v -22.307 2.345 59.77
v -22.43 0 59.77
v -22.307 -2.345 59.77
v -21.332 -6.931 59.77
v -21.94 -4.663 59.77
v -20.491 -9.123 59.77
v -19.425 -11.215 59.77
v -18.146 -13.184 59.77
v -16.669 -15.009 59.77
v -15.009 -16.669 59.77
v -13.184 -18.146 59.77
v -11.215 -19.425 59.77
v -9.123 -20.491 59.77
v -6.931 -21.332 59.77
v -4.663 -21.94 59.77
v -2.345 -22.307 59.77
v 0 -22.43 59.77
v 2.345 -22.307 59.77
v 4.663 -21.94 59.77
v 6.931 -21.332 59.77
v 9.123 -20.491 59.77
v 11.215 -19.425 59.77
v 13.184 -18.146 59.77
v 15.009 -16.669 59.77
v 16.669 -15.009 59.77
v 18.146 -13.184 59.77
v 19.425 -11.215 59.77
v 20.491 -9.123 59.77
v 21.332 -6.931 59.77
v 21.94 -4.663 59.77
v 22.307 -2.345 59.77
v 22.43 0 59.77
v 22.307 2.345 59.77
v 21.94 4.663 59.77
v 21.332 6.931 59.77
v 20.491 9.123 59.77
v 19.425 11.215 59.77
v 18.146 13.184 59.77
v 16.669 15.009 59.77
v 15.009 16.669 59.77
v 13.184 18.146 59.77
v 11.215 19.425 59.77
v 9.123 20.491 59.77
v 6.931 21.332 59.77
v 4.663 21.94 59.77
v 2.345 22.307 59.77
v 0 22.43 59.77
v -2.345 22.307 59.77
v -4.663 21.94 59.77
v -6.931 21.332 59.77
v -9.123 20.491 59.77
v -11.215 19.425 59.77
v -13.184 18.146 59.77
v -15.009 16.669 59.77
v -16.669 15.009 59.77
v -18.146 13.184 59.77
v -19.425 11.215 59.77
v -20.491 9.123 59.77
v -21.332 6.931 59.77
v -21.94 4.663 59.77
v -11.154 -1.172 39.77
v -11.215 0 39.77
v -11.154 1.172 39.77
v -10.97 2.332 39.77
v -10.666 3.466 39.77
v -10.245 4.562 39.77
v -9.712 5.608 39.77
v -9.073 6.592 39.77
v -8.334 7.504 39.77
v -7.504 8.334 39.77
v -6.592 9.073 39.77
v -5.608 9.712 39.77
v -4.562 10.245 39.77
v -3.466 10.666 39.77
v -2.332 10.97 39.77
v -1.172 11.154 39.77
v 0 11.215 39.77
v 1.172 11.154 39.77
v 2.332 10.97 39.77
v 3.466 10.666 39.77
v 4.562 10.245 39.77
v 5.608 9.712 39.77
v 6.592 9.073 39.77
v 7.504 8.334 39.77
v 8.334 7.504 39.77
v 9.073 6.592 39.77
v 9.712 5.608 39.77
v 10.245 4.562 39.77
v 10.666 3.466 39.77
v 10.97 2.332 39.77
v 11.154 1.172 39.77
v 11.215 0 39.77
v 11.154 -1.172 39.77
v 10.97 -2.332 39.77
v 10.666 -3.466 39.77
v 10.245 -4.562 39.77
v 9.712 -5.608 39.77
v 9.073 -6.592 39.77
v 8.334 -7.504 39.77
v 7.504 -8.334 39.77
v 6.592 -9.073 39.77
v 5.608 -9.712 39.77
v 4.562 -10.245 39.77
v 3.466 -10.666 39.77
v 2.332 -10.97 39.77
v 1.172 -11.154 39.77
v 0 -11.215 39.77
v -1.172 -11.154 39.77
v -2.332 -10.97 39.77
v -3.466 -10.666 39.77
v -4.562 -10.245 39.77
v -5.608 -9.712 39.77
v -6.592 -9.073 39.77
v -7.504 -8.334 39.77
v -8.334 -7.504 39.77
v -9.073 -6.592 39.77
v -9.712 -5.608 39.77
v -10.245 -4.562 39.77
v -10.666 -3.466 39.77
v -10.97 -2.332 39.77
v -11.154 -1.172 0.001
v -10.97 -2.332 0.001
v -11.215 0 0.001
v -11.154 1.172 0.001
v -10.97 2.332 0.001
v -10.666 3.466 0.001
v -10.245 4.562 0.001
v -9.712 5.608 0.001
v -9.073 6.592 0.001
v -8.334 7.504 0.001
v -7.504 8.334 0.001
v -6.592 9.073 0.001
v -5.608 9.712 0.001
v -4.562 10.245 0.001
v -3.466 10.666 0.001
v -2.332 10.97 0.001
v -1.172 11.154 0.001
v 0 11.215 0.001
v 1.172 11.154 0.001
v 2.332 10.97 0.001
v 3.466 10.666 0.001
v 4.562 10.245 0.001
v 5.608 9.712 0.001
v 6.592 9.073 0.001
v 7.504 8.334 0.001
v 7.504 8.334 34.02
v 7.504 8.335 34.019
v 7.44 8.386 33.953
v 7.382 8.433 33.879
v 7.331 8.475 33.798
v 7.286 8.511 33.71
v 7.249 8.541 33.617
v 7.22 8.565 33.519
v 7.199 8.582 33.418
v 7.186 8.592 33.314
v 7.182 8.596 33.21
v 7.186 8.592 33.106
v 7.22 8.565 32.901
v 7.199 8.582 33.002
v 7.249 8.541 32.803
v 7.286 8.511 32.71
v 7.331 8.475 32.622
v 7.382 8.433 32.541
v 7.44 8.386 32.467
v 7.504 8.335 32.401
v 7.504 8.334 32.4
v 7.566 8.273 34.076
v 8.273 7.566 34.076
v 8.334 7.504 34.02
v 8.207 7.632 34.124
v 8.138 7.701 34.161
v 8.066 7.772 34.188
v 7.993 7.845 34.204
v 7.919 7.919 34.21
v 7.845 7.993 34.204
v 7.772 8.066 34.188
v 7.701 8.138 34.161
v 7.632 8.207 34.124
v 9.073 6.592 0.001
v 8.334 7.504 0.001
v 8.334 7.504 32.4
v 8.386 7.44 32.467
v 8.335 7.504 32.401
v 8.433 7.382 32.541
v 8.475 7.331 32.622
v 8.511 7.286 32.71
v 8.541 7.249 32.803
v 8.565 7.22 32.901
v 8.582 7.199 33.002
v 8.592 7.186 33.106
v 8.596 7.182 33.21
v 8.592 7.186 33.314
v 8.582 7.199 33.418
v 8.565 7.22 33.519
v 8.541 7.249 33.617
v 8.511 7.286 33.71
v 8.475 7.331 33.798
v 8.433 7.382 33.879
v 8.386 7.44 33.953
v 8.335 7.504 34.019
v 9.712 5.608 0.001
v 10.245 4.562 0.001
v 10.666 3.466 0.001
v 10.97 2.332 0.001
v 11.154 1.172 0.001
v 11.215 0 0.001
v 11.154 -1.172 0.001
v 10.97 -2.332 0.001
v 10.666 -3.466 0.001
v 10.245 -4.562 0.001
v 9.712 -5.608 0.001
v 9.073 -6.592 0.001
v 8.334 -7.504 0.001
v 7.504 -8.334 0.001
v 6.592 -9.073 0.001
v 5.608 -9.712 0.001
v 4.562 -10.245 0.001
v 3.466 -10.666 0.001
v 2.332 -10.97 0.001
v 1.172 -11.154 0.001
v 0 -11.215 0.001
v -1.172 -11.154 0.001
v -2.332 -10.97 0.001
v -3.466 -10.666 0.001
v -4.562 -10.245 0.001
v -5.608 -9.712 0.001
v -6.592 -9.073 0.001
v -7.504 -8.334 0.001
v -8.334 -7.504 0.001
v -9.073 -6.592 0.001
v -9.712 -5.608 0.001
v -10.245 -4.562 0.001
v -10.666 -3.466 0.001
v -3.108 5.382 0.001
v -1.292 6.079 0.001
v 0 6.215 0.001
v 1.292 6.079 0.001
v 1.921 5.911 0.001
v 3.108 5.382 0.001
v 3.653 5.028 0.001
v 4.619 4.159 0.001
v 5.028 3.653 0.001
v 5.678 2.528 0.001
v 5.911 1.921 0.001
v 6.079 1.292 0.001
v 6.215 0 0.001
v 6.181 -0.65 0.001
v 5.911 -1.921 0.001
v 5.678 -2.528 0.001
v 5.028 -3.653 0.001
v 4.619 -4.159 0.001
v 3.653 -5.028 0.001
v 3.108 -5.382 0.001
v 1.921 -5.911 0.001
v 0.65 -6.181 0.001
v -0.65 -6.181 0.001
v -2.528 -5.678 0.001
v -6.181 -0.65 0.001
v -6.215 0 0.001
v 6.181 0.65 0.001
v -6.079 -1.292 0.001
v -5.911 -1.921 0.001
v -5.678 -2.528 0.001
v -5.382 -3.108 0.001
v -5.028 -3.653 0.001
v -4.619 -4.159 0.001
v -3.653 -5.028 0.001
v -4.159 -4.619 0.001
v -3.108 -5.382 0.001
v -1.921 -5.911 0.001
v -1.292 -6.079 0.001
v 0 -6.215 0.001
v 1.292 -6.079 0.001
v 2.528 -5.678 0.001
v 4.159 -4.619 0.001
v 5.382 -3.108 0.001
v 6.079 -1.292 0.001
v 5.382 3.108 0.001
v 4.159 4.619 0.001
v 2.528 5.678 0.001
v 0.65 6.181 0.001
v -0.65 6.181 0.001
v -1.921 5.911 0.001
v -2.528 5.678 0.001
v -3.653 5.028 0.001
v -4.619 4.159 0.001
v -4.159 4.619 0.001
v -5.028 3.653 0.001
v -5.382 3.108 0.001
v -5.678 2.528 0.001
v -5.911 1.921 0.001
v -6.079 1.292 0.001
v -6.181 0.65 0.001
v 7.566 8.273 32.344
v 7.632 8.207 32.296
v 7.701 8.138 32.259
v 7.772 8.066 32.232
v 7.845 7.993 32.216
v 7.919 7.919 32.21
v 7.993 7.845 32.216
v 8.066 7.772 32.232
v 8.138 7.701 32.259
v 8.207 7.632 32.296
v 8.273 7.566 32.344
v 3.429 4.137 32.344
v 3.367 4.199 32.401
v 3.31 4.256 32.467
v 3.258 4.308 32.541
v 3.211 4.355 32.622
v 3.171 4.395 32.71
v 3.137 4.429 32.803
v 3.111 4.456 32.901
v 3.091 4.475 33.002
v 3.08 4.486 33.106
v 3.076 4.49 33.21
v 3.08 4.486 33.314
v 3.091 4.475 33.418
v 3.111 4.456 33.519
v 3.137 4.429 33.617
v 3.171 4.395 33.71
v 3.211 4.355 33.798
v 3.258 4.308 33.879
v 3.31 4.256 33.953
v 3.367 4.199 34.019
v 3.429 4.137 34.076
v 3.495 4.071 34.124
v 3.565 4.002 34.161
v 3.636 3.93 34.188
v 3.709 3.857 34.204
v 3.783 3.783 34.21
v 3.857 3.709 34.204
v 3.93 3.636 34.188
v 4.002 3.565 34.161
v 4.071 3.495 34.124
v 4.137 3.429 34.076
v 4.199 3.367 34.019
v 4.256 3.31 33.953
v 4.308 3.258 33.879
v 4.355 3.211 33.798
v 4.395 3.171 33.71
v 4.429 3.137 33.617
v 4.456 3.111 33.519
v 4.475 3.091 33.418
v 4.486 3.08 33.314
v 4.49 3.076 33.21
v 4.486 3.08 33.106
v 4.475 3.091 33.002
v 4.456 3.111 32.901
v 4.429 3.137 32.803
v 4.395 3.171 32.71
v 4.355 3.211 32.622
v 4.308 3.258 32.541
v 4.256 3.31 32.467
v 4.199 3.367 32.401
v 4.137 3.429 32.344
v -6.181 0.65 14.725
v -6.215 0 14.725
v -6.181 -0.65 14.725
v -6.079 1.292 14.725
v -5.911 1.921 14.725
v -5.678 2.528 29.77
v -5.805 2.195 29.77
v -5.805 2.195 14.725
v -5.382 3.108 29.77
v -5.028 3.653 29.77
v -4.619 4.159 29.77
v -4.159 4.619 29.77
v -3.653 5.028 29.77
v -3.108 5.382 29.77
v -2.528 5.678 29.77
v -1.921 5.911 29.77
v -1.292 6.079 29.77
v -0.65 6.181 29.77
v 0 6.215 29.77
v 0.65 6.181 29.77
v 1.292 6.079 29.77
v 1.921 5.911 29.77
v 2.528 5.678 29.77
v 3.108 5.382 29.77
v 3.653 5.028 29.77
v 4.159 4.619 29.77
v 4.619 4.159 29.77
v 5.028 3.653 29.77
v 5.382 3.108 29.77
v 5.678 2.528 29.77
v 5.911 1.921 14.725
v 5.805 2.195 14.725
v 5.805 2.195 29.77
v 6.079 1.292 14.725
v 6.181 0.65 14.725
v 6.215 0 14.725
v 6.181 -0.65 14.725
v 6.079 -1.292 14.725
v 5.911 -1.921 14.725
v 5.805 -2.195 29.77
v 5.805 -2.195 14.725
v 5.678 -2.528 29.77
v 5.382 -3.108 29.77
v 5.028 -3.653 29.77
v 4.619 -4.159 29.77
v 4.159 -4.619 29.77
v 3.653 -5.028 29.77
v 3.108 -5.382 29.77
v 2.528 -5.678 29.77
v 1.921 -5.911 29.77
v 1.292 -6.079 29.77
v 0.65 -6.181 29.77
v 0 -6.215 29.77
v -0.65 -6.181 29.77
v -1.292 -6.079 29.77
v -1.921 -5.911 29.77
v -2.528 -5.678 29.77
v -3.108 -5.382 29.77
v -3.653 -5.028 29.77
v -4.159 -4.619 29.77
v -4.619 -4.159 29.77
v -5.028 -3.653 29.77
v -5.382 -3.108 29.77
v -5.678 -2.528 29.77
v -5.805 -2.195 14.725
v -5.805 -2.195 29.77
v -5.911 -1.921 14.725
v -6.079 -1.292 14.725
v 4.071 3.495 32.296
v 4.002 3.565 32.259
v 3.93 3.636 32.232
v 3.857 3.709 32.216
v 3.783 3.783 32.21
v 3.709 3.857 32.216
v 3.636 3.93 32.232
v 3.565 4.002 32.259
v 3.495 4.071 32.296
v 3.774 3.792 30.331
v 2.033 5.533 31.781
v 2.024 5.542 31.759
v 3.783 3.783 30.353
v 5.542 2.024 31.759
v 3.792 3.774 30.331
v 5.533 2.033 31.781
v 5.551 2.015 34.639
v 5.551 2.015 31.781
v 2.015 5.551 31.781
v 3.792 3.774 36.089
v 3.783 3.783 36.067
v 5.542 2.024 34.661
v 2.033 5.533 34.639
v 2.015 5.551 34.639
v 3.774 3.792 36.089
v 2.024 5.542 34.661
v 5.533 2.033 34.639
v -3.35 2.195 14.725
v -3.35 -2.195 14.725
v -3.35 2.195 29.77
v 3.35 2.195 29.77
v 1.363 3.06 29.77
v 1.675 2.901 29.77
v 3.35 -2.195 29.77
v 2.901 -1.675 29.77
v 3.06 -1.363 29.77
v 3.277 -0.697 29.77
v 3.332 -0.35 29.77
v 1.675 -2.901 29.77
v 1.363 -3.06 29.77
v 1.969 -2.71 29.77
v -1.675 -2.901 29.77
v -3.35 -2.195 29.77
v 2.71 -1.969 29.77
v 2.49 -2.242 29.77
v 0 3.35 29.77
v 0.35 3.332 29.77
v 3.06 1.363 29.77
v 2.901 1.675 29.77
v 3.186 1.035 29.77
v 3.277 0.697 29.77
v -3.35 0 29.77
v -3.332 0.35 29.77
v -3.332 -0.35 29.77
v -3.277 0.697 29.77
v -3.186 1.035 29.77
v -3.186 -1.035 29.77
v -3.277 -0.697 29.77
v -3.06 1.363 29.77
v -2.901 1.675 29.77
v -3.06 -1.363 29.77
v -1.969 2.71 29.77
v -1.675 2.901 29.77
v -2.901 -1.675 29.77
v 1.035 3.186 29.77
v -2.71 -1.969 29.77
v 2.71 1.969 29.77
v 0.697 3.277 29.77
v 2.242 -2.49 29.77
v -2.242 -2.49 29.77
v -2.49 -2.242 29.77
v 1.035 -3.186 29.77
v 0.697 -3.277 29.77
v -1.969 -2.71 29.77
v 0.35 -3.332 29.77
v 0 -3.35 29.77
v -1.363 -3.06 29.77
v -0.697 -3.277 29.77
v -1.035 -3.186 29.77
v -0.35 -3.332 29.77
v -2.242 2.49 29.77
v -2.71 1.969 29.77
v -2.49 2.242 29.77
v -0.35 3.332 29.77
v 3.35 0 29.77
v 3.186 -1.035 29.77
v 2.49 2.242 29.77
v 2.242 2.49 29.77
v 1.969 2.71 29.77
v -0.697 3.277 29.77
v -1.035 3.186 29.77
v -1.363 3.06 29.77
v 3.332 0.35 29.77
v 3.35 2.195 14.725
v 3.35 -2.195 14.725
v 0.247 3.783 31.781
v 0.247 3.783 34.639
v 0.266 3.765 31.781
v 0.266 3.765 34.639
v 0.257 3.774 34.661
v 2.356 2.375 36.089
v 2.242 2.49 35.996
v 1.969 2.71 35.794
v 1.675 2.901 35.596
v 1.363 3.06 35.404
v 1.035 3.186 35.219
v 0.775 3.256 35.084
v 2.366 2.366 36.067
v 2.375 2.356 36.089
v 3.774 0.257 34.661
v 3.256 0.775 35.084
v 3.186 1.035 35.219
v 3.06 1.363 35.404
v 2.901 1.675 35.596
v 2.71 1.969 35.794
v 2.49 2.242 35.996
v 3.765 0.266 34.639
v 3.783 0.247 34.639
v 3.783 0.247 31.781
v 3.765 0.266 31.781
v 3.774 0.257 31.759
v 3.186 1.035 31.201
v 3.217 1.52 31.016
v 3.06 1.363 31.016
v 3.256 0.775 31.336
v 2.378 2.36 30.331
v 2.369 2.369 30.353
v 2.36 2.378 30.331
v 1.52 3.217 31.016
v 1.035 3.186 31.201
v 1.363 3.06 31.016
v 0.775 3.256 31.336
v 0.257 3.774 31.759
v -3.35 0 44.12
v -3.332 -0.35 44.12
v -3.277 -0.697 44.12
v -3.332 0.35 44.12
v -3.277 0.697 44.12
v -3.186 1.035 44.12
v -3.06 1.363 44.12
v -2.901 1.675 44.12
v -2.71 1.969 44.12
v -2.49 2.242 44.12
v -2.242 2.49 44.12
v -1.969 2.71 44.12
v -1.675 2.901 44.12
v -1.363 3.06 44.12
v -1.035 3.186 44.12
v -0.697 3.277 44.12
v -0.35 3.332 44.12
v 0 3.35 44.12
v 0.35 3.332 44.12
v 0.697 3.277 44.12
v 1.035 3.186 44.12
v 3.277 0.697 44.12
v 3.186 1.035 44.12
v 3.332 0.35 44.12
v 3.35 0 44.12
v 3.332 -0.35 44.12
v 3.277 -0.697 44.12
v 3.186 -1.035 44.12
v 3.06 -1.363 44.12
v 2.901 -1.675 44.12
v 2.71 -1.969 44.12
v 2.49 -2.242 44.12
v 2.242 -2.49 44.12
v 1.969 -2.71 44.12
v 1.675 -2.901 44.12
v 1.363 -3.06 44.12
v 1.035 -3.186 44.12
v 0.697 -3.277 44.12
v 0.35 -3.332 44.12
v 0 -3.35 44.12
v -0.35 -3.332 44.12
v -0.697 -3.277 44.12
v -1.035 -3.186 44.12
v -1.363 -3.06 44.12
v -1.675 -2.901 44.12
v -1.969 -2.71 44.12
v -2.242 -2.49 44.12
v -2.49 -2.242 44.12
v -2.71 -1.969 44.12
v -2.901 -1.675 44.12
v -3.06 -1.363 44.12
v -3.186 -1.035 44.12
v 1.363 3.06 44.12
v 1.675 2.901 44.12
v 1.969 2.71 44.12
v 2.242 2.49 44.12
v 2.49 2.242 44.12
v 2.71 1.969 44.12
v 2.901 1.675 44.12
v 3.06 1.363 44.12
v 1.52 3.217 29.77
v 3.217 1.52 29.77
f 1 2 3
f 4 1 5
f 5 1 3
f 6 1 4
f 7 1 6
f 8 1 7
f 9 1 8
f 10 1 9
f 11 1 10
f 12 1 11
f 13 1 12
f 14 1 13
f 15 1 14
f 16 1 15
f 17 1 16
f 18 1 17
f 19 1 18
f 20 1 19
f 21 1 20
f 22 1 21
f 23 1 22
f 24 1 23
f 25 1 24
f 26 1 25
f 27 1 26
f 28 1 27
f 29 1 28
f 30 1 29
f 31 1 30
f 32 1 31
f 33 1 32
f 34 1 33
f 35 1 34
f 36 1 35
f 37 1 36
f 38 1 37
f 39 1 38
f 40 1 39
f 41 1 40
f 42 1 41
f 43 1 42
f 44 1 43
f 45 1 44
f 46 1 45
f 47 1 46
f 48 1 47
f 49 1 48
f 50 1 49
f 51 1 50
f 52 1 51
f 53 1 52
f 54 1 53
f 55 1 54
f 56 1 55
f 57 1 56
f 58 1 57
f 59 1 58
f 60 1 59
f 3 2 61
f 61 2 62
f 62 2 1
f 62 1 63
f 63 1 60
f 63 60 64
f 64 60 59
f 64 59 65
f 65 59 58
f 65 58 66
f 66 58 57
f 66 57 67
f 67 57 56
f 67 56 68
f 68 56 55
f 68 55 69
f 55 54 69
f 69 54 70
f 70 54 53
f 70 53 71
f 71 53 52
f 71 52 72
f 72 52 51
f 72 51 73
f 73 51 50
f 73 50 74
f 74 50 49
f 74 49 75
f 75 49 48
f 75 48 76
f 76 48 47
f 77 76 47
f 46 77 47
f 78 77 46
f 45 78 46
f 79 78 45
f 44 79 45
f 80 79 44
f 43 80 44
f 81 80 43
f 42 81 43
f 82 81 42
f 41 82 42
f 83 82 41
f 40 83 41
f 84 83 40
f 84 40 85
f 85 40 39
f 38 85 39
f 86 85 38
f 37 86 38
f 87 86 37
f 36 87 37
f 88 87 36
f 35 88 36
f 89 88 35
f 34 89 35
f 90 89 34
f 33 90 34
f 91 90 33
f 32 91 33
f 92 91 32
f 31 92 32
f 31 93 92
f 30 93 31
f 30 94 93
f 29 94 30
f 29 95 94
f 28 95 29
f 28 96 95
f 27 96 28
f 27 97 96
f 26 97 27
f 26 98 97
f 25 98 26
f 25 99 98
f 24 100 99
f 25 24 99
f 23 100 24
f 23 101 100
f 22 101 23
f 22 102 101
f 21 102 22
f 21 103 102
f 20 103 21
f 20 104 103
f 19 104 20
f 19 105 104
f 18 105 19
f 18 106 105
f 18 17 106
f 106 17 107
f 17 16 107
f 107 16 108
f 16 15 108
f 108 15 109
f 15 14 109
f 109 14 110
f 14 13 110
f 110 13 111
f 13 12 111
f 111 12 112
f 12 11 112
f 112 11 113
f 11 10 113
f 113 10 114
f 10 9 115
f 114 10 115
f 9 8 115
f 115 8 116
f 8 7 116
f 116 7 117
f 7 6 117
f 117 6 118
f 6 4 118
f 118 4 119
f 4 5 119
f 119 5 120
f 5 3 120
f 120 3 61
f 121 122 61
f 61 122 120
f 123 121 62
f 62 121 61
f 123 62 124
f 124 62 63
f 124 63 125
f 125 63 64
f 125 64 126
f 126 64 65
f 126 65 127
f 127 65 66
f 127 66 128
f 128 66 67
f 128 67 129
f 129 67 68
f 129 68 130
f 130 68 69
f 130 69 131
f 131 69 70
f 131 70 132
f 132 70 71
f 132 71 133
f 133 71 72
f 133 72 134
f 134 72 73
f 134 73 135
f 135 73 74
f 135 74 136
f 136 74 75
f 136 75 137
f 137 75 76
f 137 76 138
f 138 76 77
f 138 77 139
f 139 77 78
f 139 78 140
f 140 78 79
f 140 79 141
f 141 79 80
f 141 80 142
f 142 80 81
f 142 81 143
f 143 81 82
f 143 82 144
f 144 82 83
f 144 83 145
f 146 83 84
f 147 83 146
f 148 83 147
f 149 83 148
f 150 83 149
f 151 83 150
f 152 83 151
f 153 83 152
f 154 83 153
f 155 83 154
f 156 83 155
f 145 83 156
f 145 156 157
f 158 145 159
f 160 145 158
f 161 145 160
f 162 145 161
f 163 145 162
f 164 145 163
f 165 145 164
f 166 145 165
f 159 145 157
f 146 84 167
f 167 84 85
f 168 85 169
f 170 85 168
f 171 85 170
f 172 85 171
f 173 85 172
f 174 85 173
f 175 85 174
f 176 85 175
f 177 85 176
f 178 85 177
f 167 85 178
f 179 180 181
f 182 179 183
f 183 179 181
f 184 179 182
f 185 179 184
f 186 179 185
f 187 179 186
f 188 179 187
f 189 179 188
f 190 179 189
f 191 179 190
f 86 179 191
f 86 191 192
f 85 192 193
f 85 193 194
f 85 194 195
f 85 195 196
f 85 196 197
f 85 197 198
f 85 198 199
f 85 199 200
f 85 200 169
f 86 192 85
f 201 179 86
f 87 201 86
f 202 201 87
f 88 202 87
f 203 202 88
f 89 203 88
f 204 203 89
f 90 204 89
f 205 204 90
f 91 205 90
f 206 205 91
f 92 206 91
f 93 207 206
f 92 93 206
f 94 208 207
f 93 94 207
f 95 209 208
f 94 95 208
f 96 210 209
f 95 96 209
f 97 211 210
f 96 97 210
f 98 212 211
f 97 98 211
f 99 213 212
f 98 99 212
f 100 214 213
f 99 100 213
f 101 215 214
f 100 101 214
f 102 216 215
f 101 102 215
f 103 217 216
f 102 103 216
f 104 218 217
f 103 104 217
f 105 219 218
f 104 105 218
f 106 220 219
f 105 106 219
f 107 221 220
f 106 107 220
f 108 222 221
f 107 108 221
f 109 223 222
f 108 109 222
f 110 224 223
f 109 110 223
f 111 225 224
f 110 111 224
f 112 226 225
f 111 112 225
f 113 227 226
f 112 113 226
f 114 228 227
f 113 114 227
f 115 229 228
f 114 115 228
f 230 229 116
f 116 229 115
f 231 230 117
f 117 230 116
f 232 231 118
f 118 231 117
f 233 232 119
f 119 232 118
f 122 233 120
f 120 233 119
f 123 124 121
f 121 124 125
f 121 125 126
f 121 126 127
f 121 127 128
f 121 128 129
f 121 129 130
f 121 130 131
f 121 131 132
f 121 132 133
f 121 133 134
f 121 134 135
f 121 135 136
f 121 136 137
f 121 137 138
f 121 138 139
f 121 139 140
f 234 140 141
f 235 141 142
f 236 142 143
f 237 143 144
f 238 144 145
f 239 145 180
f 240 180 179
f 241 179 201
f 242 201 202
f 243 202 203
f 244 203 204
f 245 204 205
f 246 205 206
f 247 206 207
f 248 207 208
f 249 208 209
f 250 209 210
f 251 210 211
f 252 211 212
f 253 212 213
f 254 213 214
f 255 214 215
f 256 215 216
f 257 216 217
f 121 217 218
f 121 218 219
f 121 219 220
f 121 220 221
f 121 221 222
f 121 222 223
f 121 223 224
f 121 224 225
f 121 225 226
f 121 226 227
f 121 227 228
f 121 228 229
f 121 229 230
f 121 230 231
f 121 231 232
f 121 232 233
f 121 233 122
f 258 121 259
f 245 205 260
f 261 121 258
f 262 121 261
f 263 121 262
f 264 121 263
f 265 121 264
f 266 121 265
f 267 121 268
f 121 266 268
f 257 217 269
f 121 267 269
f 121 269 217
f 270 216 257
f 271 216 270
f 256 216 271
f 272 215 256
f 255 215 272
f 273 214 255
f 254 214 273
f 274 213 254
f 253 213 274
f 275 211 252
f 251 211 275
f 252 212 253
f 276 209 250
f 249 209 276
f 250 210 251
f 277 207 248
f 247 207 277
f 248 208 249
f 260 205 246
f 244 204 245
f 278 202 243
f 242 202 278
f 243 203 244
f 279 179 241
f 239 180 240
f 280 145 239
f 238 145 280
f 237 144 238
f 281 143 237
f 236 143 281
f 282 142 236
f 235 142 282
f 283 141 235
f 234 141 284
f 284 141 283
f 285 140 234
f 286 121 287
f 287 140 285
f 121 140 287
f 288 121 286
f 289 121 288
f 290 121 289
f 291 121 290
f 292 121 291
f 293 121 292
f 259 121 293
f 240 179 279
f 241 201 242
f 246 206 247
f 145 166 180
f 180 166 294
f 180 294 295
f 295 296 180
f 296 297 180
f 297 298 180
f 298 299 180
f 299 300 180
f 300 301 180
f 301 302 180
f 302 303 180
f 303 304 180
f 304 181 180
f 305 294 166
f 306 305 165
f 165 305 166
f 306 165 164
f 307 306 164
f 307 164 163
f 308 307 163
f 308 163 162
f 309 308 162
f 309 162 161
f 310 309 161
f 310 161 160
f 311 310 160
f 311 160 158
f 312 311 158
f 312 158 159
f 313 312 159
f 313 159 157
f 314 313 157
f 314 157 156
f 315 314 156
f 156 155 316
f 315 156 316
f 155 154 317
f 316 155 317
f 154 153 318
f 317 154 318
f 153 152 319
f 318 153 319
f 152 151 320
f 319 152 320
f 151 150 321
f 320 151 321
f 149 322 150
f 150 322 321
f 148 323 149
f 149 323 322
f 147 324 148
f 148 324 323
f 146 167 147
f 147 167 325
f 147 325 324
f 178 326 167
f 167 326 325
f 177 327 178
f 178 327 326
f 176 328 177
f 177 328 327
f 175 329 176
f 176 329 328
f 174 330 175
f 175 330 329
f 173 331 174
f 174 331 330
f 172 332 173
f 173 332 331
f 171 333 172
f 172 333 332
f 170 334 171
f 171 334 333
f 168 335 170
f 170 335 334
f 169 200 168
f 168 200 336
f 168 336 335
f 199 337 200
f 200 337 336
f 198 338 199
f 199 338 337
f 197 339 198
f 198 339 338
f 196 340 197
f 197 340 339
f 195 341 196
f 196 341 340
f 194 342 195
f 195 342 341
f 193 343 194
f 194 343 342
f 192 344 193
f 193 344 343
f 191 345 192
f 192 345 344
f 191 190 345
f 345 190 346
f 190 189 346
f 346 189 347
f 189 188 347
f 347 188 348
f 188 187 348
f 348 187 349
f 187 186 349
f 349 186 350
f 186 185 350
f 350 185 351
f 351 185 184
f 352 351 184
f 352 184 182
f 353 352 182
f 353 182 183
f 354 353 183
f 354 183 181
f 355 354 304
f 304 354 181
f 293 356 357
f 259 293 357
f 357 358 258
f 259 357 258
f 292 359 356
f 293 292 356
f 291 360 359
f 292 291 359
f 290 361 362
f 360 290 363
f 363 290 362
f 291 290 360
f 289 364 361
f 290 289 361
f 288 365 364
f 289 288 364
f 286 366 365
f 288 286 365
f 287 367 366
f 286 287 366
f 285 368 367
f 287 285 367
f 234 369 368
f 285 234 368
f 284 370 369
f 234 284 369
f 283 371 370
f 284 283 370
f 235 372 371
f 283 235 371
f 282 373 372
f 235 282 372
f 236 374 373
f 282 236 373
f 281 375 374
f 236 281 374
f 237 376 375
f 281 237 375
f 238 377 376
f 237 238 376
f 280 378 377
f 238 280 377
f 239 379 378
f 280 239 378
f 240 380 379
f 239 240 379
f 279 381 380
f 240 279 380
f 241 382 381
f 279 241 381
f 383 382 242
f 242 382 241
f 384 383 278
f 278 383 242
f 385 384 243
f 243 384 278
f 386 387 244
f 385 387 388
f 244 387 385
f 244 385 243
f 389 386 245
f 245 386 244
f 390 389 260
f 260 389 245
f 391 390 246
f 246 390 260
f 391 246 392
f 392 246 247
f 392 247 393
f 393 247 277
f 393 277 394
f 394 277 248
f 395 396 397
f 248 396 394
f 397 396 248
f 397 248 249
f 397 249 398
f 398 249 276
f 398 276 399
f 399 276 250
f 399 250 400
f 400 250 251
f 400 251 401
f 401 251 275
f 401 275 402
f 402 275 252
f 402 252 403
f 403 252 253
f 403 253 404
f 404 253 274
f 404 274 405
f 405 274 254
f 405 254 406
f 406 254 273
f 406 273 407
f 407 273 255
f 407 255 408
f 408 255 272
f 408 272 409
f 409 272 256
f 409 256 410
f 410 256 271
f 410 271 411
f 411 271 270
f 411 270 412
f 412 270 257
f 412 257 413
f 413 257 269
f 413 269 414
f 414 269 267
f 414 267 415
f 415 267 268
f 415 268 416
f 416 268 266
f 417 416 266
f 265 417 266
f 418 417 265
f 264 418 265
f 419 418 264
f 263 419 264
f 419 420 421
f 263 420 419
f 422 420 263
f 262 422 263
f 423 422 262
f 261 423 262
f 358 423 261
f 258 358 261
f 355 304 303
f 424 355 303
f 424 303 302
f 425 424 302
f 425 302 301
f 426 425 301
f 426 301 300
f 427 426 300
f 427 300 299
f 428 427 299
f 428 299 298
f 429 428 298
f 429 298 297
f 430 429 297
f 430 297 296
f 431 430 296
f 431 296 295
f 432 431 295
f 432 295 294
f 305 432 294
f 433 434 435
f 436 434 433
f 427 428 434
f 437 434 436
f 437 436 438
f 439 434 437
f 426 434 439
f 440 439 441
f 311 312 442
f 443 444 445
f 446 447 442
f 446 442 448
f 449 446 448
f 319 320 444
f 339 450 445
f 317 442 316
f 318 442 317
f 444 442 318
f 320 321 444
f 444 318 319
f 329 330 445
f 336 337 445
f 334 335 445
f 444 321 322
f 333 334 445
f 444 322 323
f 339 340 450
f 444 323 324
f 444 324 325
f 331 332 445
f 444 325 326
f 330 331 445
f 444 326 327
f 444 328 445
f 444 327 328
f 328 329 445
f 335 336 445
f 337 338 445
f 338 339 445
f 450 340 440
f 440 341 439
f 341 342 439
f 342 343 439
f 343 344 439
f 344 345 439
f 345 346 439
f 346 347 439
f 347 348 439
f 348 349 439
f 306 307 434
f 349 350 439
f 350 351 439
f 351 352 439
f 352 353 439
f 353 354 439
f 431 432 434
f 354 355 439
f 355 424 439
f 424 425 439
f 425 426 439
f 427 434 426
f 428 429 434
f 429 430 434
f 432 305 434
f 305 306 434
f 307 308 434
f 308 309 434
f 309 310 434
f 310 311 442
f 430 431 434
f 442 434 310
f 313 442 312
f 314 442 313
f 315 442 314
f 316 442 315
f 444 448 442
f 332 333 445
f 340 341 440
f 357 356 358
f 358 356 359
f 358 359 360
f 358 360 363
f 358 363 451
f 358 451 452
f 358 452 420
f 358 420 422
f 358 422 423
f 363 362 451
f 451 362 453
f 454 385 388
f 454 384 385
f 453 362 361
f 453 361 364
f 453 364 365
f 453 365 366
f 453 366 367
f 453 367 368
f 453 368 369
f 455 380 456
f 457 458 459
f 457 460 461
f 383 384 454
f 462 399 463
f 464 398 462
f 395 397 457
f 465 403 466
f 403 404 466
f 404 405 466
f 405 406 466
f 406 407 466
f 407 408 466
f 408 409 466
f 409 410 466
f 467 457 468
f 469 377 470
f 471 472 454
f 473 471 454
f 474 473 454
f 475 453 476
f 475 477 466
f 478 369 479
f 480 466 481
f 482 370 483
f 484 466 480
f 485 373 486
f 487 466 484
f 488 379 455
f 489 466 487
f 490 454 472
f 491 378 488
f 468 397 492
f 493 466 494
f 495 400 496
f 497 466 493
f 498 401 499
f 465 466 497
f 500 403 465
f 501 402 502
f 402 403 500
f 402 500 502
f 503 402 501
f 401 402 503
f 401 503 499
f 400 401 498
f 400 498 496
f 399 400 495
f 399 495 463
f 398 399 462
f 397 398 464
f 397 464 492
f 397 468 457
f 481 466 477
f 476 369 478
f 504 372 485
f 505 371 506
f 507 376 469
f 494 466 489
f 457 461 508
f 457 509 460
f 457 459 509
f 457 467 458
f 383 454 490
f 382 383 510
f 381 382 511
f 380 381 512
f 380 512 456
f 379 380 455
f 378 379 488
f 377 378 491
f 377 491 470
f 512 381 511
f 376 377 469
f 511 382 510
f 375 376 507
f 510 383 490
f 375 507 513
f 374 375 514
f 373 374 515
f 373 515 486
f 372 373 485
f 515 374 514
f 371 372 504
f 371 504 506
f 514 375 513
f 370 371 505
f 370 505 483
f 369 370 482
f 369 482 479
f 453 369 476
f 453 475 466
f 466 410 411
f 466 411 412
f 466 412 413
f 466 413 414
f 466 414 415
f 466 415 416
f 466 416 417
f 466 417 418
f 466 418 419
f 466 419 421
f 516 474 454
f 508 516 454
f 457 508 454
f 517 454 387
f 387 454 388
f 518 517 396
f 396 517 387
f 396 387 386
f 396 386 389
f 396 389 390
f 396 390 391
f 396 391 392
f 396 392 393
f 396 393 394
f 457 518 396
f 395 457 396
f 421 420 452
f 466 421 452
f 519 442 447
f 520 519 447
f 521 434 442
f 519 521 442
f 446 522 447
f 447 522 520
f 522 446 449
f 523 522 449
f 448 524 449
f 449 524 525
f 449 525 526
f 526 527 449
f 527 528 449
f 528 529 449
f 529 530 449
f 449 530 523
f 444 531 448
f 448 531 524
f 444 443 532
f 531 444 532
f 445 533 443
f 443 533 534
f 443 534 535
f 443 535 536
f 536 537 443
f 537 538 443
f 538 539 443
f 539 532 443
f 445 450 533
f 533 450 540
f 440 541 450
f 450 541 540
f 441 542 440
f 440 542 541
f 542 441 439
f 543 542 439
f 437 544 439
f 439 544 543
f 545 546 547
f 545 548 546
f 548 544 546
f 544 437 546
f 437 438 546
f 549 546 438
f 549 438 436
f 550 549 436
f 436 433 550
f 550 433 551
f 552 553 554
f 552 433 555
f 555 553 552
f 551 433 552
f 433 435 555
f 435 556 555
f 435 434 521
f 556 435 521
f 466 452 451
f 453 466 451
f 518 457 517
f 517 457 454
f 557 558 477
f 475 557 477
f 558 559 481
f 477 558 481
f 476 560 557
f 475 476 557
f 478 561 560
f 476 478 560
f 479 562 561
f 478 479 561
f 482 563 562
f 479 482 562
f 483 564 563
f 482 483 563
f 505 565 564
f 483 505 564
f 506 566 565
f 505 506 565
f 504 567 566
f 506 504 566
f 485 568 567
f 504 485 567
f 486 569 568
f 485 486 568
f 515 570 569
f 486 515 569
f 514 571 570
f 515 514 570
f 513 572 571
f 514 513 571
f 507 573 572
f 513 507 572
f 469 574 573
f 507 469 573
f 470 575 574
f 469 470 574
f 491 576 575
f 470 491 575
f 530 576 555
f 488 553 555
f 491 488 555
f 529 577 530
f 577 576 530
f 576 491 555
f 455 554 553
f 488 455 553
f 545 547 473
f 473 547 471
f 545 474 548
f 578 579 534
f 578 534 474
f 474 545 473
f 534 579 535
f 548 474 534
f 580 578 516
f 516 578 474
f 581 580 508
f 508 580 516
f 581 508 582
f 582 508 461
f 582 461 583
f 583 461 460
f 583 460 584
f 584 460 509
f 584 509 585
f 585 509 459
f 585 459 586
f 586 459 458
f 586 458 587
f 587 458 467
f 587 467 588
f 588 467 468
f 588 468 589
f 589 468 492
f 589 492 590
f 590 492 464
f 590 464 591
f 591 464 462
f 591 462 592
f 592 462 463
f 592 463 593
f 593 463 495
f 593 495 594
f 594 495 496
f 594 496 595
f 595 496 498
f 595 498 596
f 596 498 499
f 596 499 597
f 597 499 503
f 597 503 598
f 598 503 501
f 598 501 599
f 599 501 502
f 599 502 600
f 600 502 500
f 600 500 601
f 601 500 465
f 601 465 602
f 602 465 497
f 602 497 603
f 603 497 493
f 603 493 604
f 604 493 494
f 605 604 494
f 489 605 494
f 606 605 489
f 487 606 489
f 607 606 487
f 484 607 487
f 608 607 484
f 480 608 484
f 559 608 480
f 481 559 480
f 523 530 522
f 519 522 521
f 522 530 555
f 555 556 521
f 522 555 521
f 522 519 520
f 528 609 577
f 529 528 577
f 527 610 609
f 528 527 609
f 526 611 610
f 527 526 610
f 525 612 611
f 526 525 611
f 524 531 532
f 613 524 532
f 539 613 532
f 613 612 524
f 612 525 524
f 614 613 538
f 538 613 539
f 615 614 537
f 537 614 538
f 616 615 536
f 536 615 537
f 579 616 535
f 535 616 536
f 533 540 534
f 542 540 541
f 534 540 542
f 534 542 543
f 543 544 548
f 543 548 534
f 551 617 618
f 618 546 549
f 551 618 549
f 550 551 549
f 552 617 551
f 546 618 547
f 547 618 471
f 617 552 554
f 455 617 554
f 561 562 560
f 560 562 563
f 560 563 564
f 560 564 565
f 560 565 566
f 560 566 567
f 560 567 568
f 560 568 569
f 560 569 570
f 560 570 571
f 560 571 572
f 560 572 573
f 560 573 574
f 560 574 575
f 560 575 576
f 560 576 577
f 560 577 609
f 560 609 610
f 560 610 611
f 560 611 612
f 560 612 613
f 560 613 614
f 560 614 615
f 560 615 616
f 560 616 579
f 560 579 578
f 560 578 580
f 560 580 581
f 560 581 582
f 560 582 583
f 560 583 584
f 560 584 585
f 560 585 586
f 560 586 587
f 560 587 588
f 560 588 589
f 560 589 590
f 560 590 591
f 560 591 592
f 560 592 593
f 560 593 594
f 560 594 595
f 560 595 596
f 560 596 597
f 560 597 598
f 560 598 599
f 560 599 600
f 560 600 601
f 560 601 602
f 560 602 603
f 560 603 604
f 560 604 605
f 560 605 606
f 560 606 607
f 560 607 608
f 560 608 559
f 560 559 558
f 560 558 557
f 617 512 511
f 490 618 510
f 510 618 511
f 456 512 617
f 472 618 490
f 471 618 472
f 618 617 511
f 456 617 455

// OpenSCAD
resolution=60;
rod_outer_r=(6.4+.3)/2;
rod_height=14.35;
rod_max_length=24.12;
rod_throw_distance=rod_max_length-rod_height;
rod_grove_height=5.44;
rod_grove_width=2.4;
rod_grove_depth=0.5;

tube_outer_r=(12.13+.3)/2;
tube_slot_width=4.39;
tube_slot_height=17.24 - tube_slot_width/2;
tube_length=rod_throw_distance+20;
tube_thickness=tube_outer_r-rod_outer_r;

handle_shaft_outer_r=tube_outer_r+5;
handle_shaft_length=tube_length+20;

handle_knob_outer_r1=handle_shaft_outer_r;
handle_knob_outer_r2=handle_shaft_outer_r*2;
handle_knob_height=20;

screw_r=(2.5-0.5)/2;
screw_length=10;

hex_nut_cross=5;
hex_nut_thickness=2.5;

module hexagon(size, height) {
  boxWidth = size/1.75;
  for (r = [-60, 0, 60]) rotate([0,0,r]) cube([boxWidth, size, height], true);
}



echo("rod_outer_r: ",rod_outer_r, "rod_height: ",rod_height, "rod_max_length: ",rod_max_length, "rod_throw_distance: ",rod_throw_distance);
echo("tube_outer_r: ",tube_outer_r, "tube_slot_width: ",tube_slot_width, "tube_slot_height: ",tube_slot_height, "tube_lenght: ",tube_length, "tube_thickness: ",tube_thickness);


difference()  {
	union()	{
		translate([0,0,0.001])
			cylinder(r=handle_shaft_outer_r,h=handle_shaft_length,$fn=resolution);

		translate([0,0,handle_shaft_length-handle_knob_height/2])
			cylinder(r1=handle_knob_outer_r1,r2=handle_knob_outer_r2, h=handle_knob_height,$fn=resolution);
	}

	union()	{	// !!!  Prefix this line with a ! to just render the shaft !!!

		difference()  {
			cylinder(r=tube_outer_r,h=tube_length,$fn=resolution);
		
			translate([rod_outer_r,tube_slot_width/-2,tube_length-tube_slot_height])	
				color("green")
				cube([tube_thickness,tube_slot_width,tube_slot_height]);

			translate([-tube_thickness-rod_outer_r,tube_slot_width/-2,tube_length-tube_slot_height])	
				color("green")
				cube([tube_thickness,tube_slot_width,tube_slot_height]);
		}

		translate([0,0,tube_length-1])
			cylinder(r=rod_outer_r,h=rod_height+1,$fn=resolution);

		rotate([0,0,45])
			translate([rod_outer_r-rod_grove_depth,rod_grove_width/-2,tube_length]) 
				color("red")
				cube([0.5,rod_grove_width,rod_grove_height]);

		rotate([0,0,45])
			translate([rod_outer_r,0,tube_length+rod_grove_height-2*screw_r])
				color("blue")
				rotate([0,90,0])
					cylinder(r=screw_r, h=screw_length,$fn=resolution);

		rotate([0,0,45])
			translate([rod_outer_r-rod_grove_depth+hex_nut_thickness/2,0,tube_length+rod_grove_height-2*screw_r])
				color("blue")
					rotate([0,90,0])
						hexagon(hex_nut_cross,hex_nut_thickness);

//		translate([-50,-50,0])	cube([50,50,50]);

	}  // end union

}	// end difference
